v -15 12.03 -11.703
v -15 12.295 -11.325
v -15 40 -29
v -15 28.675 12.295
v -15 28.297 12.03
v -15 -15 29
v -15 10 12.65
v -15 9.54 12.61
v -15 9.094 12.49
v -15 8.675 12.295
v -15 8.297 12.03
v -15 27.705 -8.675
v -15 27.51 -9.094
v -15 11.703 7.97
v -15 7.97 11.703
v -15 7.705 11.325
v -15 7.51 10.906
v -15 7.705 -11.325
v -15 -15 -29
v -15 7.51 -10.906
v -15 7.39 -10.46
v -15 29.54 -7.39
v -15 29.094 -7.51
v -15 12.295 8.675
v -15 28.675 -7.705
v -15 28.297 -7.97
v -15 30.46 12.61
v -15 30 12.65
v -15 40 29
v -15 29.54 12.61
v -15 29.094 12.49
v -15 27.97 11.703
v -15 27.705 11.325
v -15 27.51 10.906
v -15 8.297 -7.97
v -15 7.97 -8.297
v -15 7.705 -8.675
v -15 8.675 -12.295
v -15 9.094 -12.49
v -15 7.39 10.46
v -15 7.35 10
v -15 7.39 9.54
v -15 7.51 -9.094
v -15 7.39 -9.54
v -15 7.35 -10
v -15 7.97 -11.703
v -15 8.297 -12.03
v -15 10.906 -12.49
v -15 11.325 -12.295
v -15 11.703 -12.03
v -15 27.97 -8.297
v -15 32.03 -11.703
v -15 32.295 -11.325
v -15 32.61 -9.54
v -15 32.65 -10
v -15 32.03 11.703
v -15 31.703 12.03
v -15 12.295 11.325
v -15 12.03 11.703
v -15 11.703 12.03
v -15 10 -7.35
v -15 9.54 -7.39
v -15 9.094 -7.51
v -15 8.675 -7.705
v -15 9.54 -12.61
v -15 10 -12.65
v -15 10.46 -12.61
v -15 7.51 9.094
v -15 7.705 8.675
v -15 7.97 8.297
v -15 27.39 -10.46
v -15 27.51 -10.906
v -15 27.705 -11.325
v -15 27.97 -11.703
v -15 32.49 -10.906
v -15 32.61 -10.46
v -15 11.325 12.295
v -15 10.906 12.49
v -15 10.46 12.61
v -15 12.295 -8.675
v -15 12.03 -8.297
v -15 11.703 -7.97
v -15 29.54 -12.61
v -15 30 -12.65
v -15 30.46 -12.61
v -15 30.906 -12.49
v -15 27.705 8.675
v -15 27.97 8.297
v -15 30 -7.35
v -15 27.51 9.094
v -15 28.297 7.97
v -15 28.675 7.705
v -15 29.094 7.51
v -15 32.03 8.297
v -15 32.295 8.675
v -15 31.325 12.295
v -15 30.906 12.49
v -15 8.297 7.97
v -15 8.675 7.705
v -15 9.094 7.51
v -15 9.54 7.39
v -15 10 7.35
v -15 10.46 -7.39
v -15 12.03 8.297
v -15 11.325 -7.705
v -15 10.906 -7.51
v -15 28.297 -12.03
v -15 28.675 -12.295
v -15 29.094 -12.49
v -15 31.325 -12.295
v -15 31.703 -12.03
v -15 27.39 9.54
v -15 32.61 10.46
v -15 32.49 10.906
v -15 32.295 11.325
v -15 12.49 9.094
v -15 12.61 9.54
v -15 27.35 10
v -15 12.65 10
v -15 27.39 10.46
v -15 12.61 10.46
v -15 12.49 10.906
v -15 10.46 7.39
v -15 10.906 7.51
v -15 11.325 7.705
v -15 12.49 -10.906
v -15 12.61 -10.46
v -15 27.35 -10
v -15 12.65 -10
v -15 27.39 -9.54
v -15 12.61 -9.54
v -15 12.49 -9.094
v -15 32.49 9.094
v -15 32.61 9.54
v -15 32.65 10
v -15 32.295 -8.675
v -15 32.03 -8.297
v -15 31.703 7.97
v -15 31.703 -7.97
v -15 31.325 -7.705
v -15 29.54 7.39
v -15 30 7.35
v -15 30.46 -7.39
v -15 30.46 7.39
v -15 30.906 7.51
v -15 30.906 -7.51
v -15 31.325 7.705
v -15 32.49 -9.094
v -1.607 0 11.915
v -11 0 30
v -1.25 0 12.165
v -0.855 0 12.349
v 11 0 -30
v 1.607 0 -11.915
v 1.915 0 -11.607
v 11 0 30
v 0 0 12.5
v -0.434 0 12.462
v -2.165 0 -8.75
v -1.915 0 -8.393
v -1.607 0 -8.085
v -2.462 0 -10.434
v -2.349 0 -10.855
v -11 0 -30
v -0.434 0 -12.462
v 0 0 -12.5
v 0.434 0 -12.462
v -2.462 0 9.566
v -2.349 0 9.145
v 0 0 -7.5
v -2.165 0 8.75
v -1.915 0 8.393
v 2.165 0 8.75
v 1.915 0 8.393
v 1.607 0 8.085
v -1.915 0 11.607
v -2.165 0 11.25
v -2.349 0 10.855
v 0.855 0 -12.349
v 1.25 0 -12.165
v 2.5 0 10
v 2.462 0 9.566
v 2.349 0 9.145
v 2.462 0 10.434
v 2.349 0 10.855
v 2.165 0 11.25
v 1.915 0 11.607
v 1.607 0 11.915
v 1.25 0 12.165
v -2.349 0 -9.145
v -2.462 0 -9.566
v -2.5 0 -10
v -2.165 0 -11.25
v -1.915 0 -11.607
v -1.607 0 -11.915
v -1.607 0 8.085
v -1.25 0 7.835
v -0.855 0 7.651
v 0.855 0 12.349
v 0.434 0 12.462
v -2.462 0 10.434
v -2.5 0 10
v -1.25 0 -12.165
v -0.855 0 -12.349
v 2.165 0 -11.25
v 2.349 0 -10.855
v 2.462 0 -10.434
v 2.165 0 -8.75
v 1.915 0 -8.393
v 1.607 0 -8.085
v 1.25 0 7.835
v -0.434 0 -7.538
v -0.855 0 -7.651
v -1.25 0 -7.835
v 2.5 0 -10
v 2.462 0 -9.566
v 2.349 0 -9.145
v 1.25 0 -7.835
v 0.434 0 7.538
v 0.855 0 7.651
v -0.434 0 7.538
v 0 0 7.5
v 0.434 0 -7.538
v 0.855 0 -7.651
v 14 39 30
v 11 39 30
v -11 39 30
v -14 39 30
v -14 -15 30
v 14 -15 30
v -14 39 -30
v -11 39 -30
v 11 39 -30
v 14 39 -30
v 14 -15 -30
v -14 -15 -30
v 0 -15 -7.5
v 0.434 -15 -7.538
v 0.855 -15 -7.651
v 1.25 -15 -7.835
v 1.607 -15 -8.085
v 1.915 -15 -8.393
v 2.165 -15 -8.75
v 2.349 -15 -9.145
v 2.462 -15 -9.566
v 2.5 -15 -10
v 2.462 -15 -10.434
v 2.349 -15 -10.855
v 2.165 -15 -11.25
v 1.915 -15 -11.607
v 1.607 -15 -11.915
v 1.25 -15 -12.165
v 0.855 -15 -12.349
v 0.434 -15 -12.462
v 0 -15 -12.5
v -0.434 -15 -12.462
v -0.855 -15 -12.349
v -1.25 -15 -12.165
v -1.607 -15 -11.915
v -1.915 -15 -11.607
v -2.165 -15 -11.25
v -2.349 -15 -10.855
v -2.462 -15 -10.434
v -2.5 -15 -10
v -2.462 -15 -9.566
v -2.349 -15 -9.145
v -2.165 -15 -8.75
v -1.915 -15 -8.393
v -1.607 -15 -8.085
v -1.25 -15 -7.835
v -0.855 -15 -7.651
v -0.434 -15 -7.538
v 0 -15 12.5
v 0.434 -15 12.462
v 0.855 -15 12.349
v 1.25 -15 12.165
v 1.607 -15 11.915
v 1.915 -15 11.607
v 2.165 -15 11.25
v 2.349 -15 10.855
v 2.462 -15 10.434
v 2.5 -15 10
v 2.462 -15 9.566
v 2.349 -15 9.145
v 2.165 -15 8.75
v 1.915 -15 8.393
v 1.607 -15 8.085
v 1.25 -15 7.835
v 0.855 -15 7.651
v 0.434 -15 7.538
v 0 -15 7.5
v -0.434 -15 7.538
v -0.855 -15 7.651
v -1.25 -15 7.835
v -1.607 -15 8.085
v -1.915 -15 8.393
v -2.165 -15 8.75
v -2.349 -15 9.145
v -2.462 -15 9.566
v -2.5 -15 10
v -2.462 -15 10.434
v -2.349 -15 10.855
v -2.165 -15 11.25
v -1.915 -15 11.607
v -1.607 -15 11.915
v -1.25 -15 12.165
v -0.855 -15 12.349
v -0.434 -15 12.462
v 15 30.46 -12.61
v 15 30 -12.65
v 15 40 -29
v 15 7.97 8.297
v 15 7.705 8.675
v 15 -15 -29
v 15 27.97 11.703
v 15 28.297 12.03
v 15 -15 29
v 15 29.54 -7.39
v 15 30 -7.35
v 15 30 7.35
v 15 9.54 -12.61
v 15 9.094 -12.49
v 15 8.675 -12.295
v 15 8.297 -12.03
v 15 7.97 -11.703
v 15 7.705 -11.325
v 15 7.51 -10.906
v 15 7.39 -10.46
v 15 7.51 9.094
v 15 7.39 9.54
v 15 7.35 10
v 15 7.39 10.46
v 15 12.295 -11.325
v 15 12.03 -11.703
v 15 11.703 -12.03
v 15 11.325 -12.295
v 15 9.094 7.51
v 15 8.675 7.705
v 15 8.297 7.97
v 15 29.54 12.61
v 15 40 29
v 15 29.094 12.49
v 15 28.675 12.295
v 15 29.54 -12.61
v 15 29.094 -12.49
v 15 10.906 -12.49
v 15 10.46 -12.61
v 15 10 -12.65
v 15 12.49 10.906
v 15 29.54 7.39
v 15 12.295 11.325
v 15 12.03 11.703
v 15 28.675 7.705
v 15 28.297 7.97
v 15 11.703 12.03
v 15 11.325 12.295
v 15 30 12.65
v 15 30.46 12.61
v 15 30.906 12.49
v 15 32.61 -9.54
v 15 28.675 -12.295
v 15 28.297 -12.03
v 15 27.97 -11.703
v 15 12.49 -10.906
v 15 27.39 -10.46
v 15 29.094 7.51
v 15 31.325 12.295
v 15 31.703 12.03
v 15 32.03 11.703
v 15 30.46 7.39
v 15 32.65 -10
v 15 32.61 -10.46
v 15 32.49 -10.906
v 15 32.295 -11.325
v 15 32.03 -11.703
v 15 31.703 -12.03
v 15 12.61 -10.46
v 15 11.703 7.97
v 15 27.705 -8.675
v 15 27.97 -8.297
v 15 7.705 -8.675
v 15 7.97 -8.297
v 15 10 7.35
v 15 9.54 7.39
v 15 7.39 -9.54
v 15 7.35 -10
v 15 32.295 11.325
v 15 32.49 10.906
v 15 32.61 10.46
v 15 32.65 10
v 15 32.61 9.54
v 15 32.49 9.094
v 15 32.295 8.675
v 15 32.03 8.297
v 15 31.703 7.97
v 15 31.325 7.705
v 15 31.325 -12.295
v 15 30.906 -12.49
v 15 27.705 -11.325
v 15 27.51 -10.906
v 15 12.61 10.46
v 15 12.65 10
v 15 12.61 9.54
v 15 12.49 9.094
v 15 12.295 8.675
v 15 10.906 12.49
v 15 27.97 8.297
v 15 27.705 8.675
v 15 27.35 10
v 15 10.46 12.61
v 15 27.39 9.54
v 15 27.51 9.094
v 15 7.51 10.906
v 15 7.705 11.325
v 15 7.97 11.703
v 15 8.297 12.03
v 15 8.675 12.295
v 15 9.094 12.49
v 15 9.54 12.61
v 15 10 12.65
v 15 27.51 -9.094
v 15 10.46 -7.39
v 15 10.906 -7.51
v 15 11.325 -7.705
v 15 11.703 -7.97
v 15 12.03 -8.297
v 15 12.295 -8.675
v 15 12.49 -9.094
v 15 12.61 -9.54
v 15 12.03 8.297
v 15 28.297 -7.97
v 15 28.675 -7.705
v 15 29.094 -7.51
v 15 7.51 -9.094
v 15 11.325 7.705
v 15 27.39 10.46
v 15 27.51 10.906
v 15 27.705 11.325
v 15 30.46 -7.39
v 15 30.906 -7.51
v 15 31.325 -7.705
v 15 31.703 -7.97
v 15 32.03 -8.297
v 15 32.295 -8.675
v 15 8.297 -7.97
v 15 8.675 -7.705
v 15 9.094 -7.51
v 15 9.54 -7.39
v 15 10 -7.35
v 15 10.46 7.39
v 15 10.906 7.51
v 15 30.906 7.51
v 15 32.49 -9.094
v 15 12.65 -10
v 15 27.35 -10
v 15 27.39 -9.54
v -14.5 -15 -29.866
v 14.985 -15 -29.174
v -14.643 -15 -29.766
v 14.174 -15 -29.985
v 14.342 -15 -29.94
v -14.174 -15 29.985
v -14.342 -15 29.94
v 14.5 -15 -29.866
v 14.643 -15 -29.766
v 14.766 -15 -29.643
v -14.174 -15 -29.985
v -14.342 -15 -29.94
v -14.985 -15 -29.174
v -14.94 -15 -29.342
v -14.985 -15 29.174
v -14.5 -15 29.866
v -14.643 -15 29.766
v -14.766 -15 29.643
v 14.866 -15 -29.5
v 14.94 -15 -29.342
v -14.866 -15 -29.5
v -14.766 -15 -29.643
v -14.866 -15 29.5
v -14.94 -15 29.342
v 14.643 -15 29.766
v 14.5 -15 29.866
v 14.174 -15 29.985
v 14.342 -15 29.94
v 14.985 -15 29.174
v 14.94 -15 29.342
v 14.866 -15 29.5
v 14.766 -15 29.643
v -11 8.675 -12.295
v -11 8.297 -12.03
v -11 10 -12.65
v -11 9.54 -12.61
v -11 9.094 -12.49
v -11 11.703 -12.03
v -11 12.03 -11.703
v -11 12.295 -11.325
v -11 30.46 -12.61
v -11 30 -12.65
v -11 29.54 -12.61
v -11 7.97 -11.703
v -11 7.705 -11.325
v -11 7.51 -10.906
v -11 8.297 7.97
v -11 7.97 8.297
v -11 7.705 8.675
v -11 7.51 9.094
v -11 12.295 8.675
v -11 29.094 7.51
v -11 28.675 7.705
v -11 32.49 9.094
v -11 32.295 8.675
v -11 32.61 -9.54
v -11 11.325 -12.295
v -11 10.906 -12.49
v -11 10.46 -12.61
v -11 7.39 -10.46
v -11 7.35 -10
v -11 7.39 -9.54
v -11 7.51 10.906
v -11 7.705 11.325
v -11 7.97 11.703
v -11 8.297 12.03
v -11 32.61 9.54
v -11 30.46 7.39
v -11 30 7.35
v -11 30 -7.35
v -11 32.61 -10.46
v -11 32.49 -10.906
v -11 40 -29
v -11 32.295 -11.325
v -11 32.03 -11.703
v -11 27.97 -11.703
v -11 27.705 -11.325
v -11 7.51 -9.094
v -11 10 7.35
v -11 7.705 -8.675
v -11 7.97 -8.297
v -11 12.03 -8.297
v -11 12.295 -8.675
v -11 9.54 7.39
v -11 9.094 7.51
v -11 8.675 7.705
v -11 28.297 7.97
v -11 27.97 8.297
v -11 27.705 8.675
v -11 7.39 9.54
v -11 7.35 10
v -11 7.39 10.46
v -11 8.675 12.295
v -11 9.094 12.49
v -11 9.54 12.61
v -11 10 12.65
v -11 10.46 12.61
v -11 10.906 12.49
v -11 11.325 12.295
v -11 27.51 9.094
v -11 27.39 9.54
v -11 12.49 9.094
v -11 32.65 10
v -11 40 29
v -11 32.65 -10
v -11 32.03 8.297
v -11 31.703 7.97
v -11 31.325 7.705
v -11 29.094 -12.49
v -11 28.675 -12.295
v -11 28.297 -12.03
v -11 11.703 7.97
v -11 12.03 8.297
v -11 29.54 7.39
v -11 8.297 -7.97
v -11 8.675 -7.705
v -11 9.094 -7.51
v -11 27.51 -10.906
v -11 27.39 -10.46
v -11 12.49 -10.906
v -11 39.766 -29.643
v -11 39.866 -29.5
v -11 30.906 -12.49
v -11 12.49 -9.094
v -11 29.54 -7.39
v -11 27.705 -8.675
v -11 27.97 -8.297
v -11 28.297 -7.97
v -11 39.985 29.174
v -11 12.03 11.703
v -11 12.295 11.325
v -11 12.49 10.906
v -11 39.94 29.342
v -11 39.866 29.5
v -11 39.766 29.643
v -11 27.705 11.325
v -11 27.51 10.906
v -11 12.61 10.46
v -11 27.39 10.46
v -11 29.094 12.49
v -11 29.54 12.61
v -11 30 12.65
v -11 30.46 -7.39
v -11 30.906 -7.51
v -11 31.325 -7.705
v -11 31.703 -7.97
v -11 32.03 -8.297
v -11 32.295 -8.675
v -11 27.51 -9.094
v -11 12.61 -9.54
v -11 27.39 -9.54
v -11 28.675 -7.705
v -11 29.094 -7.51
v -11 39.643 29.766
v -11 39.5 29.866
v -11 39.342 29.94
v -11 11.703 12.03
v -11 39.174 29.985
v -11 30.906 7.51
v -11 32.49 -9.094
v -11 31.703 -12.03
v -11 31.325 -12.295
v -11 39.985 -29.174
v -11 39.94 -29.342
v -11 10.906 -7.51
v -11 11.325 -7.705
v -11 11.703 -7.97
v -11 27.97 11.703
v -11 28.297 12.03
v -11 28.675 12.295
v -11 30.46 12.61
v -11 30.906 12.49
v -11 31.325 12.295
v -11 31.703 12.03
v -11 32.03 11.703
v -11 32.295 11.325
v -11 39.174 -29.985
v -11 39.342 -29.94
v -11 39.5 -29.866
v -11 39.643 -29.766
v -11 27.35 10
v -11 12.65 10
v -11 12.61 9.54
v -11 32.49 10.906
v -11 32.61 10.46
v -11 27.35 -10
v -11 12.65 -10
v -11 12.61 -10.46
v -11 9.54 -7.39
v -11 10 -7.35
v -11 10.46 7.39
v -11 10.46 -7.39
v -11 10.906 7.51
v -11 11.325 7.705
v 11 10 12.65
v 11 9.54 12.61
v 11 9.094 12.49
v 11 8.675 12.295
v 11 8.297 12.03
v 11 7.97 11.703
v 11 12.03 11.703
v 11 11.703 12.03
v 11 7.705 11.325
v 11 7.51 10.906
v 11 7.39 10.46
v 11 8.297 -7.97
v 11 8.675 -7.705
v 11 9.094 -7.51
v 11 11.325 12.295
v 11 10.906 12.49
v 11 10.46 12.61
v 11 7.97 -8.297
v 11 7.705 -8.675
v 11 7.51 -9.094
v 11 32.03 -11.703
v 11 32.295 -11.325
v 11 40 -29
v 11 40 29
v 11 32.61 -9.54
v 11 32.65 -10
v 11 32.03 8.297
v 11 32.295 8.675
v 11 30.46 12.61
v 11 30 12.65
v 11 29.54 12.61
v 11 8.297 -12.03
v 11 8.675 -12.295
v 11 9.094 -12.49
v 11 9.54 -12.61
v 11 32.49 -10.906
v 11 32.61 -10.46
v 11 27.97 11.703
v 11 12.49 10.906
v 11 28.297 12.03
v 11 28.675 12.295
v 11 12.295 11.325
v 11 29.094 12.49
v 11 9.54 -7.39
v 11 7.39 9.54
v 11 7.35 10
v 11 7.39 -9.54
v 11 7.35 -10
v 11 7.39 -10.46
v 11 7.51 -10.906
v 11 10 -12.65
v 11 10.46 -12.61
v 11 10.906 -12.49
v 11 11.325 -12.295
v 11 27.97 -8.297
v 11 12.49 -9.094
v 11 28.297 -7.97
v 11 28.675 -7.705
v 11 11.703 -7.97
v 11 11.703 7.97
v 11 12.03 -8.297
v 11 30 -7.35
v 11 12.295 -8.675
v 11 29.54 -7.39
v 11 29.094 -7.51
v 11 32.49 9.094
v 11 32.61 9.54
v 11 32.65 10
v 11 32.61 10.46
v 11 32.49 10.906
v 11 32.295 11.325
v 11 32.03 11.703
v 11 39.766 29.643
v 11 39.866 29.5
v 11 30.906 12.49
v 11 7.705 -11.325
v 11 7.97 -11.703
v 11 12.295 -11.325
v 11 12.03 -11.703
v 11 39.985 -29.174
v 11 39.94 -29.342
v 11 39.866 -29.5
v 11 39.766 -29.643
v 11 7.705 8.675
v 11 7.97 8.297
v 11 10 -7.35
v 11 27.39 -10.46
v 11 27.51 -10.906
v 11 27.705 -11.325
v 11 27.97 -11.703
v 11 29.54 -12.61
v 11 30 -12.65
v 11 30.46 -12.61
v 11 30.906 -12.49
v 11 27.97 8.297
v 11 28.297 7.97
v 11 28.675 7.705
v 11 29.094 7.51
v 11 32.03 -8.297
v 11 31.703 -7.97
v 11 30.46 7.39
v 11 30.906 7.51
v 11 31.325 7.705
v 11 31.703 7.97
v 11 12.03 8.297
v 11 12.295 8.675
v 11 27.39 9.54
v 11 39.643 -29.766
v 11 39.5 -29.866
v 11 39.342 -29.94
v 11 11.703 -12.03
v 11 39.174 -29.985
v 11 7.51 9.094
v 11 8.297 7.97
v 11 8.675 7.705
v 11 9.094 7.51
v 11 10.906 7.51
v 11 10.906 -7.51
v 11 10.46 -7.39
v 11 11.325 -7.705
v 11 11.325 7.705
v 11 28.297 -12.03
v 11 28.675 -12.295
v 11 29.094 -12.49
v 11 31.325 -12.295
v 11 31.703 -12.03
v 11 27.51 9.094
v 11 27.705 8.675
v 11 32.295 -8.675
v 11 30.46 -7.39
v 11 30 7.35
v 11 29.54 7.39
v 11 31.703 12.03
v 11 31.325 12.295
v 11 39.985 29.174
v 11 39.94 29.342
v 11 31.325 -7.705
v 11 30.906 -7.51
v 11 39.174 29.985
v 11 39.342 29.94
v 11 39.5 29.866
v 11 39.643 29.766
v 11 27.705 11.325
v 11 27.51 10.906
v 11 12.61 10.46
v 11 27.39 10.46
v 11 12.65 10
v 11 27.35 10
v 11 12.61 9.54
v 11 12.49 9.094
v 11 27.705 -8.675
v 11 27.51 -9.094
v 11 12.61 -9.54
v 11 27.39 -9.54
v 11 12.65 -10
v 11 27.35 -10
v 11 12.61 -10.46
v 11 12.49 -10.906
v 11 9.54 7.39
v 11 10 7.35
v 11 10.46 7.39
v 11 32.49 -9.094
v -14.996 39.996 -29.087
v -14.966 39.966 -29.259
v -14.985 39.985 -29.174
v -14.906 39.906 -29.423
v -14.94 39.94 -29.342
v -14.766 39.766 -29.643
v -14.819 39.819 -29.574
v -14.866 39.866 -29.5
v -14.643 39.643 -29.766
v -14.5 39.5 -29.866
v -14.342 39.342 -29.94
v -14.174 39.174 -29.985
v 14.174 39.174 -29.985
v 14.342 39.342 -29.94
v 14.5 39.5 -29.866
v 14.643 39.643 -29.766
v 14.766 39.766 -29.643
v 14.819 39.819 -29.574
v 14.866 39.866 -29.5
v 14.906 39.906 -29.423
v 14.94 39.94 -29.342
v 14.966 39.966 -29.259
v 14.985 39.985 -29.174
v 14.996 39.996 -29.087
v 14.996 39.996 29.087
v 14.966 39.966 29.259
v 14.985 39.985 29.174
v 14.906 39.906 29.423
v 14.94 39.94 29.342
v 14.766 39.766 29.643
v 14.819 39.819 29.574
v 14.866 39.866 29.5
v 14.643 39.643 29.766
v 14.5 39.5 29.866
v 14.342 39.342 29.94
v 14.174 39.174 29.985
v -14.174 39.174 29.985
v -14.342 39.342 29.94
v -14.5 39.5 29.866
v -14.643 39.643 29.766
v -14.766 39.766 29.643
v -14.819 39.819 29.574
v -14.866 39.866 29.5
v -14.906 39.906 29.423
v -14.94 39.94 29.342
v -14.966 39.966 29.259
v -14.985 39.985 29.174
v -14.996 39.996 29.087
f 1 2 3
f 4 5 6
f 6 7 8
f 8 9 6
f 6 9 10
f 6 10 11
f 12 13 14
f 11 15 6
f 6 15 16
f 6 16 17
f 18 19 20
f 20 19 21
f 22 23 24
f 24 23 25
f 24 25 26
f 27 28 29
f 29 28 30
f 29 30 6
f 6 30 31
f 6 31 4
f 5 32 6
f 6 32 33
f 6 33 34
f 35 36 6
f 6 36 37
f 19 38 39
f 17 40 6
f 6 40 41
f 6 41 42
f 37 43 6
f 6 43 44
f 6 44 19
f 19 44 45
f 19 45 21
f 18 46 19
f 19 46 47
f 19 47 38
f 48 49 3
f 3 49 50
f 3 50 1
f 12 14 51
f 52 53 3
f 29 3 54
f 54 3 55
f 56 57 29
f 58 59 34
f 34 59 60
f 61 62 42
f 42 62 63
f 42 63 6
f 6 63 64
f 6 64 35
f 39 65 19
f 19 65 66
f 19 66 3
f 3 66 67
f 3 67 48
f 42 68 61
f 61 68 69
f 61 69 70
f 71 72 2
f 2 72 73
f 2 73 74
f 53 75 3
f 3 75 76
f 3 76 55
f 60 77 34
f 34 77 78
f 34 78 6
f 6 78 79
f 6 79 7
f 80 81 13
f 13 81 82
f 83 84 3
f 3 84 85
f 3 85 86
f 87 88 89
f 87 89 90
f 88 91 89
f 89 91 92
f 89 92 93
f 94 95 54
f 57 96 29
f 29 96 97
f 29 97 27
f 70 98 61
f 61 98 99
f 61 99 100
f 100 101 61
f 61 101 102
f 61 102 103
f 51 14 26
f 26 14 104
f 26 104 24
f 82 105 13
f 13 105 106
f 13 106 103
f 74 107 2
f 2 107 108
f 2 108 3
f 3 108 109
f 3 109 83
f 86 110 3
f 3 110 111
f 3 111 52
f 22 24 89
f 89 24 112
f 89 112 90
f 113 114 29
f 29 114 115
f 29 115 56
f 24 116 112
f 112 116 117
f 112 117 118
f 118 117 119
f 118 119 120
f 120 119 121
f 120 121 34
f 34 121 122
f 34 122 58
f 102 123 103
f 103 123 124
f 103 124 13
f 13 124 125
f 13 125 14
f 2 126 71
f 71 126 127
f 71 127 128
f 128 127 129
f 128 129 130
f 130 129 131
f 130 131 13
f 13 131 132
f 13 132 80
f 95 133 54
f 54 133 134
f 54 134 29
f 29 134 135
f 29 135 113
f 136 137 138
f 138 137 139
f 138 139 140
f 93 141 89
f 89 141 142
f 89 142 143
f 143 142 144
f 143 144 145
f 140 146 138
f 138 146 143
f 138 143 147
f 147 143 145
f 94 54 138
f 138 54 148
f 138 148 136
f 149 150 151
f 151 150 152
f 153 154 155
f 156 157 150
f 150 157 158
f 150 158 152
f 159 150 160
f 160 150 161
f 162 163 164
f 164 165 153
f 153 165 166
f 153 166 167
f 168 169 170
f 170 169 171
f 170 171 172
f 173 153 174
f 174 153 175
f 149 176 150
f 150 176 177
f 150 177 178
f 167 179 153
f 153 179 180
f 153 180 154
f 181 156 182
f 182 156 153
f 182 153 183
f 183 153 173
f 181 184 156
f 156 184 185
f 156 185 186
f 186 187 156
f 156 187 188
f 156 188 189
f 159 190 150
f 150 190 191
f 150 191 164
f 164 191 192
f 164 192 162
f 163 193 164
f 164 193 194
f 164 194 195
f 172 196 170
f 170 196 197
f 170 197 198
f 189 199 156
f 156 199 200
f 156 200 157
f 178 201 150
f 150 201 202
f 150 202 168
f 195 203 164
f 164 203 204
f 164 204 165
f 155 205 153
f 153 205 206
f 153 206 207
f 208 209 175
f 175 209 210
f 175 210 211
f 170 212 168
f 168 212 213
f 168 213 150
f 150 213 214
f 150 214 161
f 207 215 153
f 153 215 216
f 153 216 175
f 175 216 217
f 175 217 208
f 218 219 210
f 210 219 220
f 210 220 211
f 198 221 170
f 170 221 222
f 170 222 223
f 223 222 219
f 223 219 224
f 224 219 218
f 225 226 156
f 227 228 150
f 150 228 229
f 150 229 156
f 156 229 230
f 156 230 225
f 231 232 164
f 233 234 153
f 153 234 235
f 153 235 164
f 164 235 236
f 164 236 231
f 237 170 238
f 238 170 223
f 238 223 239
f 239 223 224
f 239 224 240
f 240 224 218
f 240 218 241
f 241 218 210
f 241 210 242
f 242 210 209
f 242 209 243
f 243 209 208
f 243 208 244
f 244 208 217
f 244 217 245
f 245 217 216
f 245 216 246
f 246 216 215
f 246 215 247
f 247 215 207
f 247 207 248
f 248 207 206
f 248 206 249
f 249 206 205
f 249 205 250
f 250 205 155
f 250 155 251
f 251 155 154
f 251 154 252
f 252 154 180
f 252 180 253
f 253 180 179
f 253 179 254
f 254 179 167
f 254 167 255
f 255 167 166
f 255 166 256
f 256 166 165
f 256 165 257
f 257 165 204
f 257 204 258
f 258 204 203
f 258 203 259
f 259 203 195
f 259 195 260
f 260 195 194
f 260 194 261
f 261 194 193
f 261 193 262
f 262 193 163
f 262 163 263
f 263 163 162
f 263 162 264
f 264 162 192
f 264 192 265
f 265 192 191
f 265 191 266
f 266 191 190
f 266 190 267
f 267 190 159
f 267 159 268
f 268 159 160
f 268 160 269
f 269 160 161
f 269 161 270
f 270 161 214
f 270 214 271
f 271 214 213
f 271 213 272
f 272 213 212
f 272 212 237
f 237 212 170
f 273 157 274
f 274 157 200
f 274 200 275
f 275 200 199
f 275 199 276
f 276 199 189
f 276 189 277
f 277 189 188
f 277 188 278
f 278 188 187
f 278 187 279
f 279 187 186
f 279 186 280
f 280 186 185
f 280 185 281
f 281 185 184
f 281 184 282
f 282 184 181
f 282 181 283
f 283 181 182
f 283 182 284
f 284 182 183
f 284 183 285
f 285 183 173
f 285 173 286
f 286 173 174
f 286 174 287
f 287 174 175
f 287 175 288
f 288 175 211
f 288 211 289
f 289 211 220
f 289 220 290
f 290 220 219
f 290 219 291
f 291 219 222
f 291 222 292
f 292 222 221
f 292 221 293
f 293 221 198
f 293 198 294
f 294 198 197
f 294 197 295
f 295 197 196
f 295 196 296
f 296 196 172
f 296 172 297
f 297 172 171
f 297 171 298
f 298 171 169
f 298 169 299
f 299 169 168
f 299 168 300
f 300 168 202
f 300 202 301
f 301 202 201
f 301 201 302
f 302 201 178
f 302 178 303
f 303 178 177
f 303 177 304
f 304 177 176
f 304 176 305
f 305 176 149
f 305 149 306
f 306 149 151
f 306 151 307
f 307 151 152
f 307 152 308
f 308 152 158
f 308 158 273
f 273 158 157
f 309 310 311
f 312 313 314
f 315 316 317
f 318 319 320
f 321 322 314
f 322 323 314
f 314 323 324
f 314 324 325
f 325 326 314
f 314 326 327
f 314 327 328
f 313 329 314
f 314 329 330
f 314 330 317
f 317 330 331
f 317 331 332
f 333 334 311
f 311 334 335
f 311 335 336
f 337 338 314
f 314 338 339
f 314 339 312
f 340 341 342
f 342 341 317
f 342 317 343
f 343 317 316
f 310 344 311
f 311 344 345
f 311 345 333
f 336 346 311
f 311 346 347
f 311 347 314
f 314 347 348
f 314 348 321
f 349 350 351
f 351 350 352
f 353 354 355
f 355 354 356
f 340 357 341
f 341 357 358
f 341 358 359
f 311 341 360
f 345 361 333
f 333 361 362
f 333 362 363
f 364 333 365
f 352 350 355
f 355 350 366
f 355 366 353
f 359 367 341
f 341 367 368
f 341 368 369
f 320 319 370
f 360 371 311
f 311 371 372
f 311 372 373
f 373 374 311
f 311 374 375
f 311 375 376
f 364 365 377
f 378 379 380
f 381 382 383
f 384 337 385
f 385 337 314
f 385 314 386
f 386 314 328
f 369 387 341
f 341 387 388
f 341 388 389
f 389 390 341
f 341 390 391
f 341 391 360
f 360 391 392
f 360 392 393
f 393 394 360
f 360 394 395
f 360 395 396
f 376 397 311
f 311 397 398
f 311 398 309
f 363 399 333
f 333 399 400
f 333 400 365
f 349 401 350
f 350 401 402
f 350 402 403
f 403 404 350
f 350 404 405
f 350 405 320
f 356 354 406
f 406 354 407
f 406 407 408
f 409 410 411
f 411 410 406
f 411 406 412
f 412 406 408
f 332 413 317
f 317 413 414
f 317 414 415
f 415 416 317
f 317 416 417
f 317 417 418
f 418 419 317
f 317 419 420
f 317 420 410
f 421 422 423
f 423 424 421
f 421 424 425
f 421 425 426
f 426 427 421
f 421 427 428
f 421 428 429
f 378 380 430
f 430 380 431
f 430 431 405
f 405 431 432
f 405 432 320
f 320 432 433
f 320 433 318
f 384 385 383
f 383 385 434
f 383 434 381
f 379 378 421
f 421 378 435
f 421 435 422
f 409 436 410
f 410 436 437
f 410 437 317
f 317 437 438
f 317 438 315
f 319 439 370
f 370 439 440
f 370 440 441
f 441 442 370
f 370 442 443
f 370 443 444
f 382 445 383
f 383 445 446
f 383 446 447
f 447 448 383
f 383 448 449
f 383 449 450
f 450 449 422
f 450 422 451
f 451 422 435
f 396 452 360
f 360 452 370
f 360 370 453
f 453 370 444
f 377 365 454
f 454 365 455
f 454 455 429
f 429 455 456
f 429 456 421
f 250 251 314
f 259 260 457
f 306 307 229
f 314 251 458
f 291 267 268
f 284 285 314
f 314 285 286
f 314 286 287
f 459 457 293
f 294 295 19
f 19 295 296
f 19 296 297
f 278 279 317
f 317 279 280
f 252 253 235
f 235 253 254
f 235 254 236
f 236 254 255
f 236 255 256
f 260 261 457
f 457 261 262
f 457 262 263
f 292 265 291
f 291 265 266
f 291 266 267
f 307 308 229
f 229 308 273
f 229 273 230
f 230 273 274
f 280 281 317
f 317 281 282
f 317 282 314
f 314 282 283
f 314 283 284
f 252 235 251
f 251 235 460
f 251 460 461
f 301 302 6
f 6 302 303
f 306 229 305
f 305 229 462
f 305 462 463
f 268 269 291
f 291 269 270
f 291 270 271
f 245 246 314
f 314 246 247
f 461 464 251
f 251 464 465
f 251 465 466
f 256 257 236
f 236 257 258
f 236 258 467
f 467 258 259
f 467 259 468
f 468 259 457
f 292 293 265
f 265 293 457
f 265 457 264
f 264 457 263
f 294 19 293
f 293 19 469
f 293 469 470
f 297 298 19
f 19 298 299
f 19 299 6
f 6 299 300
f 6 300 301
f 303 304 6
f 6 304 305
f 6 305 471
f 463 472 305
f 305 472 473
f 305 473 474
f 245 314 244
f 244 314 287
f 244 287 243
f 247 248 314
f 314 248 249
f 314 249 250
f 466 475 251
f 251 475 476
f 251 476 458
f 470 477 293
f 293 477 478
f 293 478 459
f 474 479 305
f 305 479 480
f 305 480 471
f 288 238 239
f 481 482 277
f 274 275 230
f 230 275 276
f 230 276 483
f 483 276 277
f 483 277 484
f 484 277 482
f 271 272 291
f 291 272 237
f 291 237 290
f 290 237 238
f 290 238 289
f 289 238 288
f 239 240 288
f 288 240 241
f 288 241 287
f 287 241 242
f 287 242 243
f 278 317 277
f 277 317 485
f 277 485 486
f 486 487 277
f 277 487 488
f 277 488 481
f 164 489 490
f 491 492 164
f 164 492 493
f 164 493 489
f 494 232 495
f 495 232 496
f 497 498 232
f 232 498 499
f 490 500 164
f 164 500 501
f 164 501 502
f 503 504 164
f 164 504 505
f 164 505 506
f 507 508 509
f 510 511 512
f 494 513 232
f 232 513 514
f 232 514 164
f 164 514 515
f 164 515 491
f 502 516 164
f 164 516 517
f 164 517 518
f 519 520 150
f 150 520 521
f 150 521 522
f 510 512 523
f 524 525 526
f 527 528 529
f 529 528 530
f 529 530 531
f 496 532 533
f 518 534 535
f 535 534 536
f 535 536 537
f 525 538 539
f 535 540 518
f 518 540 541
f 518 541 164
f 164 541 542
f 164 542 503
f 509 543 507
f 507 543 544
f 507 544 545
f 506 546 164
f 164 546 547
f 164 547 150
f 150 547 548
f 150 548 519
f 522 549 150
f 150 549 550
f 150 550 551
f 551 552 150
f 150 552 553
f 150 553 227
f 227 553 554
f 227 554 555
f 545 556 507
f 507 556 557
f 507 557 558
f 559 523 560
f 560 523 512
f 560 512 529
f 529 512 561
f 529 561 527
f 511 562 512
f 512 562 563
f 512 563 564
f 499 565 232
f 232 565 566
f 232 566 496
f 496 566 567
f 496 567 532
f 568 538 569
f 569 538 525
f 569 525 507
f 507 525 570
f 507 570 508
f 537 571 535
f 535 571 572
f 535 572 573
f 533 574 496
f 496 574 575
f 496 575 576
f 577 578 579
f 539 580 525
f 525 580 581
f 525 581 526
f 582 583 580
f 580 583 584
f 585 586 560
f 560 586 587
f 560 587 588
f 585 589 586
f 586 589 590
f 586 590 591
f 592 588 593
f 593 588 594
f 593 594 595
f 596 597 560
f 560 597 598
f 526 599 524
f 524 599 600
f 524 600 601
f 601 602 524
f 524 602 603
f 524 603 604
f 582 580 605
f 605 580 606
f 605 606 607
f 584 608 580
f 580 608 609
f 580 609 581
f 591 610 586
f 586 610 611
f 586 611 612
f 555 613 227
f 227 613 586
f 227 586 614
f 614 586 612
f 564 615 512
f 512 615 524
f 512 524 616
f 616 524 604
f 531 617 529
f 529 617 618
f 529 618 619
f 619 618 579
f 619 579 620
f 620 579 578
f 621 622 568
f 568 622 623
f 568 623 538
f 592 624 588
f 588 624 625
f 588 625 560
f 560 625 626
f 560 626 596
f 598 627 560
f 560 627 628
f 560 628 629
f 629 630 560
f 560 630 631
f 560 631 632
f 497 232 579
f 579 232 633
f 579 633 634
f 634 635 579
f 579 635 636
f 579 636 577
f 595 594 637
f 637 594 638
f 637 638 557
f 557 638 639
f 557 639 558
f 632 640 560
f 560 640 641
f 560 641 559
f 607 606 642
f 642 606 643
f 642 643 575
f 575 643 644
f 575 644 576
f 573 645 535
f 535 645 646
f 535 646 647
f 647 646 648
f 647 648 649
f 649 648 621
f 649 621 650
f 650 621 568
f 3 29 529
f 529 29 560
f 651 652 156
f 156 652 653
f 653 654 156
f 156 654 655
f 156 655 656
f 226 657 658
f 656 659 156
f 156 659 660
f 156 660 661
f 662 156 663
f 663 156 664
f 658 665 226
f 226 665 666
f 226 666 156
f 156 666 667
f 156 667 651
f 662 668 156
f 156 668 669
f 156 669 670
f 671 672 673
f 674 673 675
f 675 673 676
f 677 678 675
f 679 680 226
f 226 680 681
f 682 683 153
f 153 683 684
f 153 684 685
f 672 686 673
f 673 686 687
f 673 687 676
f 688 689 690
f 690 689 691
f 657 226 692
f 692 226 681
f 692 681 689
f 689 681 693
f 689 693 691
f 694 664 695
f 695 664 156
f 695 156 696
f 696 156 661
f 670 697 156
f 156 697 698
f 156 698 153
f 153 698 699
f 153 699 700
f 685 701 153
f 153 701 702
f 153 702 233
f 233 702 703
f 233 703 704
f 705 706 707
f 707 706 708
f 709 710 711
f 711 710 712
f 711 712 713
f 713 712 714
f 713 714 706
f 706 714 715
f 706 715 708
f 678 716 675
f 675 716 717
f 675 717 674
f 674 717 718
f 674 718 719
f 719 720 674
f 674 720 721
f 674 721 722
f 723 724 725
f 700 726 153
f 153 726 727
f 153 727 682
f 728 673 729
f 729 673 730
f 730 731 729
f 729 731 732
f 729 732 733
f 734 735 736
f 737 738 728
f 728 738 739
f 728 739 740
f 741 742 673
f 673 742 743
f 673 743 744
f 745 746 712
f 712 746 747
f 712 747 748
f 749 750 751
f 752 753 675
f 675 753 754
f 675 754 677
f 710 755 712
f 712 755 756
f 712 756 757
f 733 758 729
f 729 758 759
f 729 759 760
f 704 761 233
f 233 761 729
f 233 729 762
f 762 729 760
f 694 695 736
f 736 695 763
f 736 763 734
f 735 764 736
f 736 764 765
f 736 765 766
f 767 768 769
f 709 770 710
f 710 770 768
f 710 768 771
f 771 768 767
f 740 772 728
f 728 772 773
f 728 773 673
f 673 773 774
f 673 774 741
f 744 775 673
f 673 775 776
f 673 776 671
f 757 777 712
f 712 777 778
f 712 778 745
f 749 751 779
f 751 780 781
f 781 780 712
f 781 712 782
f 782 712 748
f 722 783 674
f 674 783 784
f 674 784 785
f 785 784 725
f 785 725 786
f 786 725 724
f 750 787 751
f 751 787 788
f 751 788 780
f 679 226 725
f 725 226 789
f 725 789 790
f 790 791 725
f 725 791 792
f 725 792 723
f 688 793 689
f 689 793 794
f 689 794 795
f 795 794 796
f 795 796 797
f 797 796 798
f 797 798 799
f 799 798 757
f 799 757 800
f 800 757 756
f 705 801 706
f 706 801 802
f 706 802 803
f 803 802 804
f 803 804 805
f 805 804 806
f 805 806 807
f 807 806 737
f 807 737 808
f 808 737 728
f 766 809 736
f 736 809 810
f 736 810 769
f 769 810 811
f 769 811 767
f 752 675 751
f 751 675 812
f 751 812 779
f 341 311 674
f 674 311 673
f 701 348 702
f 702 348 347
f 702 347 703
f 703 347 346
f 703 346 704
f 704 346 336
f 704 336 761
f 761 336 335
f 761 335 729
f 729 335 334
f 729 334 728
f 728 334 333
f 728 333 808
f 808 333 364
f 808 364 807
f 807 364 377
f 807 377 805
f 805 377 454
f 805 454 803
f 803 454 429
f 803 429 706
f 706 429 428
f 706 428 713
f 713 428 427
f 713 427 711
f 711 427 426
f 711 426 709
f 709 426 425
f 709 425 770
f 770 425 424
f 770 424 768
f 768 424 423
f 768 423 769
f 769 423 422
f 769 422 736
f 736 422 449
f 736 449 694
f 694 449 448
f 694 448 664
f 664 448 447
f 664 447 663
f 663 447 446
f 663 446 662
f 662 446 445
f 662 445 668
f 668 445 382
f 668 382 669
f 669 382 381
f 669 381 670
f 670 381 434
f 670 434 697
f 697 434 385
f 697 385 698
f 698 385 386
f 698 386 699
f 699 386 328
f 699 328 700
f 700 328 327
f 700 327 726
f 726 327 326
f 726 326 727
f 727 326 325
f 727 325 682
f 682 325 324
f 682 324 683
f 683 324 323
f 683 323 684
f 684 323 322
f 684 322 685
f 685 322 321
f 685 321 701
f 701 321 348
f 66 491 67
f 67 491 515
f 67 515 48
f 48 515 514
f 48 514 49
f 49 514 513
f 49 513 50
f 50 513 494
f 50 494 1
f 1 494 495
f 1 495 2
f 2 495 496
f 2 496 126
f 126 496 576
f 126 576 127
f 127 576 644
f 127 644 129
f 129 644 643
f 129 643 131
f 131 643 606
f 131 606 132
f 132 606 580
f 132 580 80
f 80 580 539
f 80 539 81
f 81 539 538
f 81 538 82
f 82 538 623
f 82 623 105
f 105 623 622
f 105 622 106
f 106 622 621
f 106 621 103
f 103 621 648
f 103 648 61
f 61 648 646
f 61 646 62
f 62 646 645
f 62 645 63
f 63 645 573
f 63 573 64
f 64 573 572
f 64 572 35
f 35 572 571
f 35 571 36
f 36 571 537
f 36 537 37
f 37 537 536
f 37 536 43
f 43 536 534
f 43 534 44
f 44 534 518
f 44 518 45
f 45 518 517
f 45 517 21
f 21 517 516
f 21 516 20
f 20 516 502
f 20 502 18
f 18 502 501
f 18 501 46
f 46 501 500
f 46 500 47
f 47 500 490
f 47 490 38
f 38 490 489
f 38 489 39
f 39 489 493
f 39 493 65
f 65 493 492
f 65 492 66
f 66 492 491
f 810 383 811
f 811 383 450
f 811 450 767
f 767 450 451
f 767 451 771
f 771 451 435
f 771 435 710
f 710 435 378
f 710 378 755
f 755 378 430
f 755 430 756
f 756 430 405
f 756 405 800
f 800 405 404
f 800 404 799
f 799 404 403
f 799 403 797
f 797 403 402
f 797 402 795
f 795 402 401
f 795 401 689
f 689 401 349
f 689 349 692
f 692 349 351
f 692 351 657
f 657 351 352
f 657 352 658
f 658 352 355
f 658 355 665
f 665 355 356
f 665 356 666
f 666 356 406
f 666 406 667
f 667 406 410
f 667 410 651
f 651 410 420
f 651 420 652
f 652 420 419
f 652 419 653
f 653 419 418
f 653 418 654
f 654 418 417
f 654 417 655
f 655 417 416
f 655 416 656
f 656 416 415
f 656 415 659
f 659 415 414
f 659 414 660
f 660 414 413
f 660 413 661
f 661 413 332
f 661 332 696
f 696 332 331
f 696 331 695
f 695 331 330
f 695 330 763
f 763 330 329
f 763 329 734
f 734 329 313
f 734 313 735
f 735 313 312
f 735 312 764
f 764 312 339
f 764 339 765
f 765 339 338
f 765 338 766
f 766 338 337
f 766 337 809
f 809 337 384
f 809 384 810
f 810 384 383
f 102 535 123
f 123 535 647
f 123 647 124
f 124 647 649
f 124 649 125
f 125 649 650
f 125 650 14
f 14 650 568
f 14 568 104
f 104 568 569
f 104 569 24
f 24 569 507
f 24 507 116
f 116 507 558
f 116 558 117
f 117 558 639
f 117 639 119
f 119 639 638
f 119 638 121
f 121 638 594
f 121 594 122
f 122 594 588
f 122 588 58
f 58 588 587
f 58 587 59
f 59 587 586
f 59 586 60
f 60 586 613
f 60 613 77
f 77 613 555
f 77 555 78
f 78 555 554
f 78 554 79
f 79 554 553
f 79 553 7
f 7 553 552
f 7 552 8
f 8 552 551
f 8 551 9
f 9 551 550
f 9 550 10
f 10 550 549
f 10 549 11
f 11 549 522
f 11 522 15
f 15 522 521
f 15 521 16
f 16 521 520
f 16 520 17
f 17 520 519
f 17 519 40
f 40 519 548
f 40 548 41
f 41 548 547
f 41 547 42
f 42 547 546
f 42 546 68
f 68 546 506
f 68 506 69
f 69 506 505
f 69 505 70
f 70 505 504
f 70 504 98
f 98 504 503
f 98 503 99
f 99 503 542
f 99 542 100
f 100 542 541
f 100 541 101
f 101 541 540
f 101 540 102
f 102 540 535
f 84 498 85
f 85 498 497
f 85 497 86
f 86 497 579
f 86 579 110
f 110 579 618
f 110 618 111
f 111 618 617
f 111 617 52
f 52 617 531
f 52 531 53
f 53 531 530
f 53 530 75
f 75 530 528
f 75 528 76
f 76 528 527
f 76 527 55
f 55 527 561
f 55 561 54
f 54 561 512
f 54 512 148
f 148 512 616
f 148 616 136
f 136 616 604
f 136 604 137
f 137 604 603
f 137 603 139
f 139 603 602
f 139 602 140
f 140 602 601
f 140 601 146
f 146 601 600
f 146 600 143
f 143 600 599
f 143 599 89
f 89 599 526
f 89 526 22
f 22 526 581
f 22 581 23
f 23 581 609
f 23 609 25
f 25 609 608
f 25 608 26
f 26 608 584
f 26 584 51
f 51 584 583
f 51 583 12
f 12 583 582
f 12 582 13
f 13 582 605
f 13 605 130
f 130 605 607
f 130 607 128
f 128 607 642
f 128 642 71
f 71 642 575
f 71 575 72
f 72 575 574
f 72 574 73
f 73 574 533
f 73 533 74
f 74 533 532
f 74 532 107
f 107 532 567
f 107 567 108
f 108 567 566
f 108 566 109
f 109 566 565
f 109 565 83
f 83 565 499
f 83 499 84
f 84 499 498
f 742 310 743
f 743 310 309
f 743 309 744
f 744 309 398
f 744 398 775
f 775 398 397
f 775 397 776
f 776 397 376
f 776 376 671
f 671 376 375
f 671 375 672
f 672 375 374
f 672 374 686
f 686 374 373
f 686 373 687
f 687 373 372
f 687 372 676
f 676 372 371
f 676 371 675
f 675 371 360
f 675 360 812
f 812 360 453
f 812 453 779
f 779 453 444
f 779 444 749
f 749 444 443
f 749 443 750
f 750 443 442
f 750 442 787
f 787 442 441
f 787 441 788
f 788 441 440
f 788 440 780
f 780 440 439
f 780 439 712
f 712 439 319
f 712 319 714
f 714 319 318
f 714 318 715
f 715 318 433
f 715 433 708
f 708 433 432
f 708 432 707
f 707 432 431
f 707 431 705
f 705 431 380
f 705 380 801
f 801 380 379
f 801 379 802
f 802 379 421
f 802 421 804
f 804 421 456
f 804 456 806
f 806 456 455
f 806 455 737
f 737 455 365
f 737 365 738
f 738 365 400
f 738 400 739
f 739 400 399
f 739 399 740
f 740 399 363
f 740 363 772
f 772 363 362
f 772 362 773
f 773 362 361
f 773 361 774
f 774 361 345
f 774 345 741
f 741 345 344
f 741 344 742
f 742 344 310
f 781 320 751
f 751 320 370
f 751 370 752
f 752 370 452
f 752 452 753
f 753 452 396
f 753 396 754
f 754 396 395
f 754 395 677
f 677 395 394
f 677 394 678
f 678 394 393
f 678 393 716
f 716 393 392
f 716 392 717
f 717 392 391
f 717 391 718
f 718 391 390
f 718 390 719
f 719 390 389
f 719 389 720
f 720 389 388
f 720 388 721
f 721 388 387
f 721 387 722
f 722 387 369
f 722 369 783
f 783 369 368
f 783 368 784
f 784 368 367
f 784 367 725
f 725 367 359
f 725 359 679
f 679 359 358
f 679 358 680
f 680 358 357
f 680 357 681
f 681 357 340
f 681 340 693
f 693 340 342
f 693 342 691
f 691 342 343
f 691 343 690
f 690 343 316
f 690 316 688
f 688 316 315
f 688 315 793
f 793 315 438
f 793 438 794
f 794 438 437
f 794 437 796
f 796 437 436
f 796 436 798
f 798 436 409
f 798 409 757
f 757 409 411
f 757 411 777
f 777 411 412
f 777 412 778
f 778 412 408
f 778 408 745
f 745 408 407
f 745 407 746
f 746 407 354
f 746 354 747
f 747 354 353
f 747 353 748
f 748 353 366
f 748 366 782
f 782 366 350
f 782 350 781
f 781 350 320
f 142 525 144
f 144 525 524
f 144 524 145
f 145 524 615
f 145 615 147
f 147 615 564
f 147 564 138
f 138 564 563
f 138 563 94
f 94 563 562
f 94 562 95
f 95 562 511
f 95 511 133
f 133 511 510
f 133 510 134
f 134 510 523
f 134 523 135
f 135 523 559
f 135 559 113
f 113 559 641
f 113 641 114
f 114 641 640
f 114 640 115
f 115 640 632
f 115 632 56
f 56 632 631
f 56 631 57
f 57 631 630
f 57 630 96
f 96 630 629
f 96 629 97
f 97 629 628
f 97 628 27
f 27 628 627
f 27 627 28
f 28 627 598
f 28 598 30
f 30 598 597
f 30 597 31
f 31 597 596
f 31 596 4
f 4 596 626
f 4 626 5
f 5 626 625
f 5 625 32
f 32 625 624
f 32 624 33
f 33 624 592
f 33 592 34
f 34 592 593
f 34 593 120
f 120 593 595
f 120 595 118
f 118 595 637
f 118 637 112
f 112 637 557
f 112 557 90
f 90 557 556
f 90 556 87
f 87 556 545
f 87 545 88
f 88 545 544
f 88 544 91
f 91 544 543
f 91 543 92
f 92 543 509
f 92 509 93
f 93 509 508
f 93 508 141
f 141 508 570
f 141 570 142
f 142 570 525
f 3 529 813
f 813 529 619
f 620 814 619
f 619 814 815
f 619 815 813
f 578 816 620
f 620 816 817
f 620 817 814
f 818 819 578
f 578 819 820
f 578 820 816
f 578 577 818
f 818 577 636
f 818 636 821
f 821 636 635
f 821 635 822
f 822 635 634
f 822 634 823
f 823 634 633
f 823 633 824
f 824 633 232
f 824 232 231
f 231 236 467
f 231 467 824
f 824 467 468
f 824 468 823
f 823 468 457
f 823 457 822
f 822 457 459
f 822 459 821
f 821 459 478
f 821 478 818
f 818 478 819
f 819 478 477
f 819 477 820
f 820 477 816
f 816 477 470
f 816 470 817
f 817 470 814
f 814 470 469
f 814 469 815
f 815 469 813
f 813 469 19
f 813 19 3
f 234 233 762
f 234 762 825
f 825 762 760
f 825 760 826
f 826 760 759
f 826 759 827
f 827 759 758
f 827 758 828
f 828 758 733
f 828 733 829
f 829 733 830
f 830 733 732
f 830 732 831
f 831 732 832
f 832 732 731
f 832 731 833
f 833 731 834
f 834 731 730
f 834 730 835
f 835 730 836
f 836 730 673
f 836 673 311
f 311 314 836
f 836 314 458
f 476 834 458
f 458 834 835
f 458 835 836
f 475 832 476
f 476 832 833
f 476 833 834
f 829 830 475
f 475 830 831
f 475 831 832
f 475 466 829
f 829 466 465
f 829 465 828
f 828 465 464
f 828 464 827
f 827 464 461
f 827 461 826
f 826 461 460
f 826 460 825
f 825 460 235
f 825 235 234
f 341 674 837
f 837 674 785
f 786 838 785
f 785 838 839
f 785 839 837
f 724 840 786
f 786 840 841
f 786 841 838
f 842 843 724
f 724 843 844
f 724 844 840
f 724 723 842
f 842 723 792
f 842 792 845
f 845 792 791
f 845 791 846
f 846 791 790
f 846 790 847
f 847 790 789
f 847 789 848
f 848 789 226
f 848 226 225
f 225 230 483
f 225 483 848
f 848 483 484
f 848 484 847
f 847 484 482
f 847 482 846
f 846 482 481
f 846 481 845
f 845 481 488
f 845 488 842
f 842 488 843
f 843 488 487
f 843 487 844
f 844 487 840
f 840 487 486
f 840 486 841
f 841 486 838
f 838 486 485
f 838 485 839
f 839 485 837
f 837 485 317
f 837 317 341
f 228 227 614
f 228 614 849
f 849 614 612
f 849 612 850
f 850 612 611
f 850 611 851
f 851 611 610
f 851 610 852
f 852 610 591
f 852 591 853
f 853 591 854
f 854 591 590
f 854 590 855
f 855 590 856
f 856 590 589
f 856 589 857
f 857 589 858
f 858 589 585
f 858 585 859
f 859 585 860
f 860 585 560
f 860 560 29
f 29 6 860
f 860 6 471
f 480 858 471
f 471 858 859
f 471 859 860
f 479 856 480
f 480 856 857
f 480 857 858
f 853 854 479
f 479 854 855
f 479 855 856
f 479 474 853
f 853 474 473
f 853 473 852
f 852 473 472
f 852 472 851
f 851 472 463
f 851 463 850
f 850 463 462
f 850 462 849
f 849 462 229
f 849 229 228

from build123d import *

# Parameters (mm, degrees)
SKETCH1_W            = 30
SKETCH1_H            = 60
SKETCH1_R            = 2.5
BOSS_EXTRUDE1_DEPTH  = 15
SKETCH1_3_W          = 4
SKETCH1_3_H          = 60
BOSS_EXTRUDE2_DEPTH  = 40
M5_CLEARANCE_HOLE1_D = 5.3
LPATTERN1_COUNT      = 2
LPATTERN1_PITCH      = 20
FILLET1_R            = 1


with BuildPart() as part:
    # Sketch1 → Boss-Extrude1 (new body)
    with BuildSketch(Plane(origin=(0, 0, 0), x_dir=(1, 0, 0), z_dir=(0, 1, 0))):
        Rectangle(SKETCH1_W, SKETCH1_H)
        with Locations((0, 10)):
            Circle(SKETCH1_R, mode=Mode.SUBTRACT)
        with Locations((0, -10)):
            Circle(SKETCH1_R, mode=Mode.SUBTRACT)
    extrude(amount=-BOSS_EXTRUDE1_DEPTH)

    # Sketch1<3> → Boss-Extrude2 (add)
    with BuildSketch(Plane(origin=(0, 0, 0), x_dir=(1, 0, 0), z_dir=(0, 1, 0))):
        with Locations((-13, 0)):
            Rectangle(SKETCH1_3_W, SKETCH1_3_H)
        with Locations((13, 0)):
            Rectangle(SKETCH1_3_W, SKETCH1_3_H)
    extrude(amount=BOSS_EXTRUDE2_DEPTH)

    # M5 Clearance Hole1 (through all)
    with Locations(Plane(origin=(15, 10, 10), x_dir=(0, 0, 1), z_dir=(1, 0, 0))):
        with Locations((0, 0), (-20, 0)):
            m5_clearance_hole1 = Hole(M5_CLEARANCE_HOLE1_D / 2)

    # LPattern1: M5 Clearance Hole1 ×2
    with Locations(*[(0, i * LPATTERN1_PITCH, 0) for i in range(1, LPATTERN1_COUNT)]):
        add(m5_clearance_hole1, mode=Mode.SUBTRACT)

    # Fillet1
    fillet1_edges = [part.edges().sort_by_distance(p)[0] for p in [
        (-15, 12.5, -30),
        (15, 12.5, -30),
        (15, 12.5, 30),
        (-15, 12.5, 30),
        (13, 40, 30),
        (13, 40, -30),
        (-13, 40, -30),
        (-13, 40, 30),
    ]]
    fillet(fillet1_edges, radius=FILLET1_R)


solid = part.part
